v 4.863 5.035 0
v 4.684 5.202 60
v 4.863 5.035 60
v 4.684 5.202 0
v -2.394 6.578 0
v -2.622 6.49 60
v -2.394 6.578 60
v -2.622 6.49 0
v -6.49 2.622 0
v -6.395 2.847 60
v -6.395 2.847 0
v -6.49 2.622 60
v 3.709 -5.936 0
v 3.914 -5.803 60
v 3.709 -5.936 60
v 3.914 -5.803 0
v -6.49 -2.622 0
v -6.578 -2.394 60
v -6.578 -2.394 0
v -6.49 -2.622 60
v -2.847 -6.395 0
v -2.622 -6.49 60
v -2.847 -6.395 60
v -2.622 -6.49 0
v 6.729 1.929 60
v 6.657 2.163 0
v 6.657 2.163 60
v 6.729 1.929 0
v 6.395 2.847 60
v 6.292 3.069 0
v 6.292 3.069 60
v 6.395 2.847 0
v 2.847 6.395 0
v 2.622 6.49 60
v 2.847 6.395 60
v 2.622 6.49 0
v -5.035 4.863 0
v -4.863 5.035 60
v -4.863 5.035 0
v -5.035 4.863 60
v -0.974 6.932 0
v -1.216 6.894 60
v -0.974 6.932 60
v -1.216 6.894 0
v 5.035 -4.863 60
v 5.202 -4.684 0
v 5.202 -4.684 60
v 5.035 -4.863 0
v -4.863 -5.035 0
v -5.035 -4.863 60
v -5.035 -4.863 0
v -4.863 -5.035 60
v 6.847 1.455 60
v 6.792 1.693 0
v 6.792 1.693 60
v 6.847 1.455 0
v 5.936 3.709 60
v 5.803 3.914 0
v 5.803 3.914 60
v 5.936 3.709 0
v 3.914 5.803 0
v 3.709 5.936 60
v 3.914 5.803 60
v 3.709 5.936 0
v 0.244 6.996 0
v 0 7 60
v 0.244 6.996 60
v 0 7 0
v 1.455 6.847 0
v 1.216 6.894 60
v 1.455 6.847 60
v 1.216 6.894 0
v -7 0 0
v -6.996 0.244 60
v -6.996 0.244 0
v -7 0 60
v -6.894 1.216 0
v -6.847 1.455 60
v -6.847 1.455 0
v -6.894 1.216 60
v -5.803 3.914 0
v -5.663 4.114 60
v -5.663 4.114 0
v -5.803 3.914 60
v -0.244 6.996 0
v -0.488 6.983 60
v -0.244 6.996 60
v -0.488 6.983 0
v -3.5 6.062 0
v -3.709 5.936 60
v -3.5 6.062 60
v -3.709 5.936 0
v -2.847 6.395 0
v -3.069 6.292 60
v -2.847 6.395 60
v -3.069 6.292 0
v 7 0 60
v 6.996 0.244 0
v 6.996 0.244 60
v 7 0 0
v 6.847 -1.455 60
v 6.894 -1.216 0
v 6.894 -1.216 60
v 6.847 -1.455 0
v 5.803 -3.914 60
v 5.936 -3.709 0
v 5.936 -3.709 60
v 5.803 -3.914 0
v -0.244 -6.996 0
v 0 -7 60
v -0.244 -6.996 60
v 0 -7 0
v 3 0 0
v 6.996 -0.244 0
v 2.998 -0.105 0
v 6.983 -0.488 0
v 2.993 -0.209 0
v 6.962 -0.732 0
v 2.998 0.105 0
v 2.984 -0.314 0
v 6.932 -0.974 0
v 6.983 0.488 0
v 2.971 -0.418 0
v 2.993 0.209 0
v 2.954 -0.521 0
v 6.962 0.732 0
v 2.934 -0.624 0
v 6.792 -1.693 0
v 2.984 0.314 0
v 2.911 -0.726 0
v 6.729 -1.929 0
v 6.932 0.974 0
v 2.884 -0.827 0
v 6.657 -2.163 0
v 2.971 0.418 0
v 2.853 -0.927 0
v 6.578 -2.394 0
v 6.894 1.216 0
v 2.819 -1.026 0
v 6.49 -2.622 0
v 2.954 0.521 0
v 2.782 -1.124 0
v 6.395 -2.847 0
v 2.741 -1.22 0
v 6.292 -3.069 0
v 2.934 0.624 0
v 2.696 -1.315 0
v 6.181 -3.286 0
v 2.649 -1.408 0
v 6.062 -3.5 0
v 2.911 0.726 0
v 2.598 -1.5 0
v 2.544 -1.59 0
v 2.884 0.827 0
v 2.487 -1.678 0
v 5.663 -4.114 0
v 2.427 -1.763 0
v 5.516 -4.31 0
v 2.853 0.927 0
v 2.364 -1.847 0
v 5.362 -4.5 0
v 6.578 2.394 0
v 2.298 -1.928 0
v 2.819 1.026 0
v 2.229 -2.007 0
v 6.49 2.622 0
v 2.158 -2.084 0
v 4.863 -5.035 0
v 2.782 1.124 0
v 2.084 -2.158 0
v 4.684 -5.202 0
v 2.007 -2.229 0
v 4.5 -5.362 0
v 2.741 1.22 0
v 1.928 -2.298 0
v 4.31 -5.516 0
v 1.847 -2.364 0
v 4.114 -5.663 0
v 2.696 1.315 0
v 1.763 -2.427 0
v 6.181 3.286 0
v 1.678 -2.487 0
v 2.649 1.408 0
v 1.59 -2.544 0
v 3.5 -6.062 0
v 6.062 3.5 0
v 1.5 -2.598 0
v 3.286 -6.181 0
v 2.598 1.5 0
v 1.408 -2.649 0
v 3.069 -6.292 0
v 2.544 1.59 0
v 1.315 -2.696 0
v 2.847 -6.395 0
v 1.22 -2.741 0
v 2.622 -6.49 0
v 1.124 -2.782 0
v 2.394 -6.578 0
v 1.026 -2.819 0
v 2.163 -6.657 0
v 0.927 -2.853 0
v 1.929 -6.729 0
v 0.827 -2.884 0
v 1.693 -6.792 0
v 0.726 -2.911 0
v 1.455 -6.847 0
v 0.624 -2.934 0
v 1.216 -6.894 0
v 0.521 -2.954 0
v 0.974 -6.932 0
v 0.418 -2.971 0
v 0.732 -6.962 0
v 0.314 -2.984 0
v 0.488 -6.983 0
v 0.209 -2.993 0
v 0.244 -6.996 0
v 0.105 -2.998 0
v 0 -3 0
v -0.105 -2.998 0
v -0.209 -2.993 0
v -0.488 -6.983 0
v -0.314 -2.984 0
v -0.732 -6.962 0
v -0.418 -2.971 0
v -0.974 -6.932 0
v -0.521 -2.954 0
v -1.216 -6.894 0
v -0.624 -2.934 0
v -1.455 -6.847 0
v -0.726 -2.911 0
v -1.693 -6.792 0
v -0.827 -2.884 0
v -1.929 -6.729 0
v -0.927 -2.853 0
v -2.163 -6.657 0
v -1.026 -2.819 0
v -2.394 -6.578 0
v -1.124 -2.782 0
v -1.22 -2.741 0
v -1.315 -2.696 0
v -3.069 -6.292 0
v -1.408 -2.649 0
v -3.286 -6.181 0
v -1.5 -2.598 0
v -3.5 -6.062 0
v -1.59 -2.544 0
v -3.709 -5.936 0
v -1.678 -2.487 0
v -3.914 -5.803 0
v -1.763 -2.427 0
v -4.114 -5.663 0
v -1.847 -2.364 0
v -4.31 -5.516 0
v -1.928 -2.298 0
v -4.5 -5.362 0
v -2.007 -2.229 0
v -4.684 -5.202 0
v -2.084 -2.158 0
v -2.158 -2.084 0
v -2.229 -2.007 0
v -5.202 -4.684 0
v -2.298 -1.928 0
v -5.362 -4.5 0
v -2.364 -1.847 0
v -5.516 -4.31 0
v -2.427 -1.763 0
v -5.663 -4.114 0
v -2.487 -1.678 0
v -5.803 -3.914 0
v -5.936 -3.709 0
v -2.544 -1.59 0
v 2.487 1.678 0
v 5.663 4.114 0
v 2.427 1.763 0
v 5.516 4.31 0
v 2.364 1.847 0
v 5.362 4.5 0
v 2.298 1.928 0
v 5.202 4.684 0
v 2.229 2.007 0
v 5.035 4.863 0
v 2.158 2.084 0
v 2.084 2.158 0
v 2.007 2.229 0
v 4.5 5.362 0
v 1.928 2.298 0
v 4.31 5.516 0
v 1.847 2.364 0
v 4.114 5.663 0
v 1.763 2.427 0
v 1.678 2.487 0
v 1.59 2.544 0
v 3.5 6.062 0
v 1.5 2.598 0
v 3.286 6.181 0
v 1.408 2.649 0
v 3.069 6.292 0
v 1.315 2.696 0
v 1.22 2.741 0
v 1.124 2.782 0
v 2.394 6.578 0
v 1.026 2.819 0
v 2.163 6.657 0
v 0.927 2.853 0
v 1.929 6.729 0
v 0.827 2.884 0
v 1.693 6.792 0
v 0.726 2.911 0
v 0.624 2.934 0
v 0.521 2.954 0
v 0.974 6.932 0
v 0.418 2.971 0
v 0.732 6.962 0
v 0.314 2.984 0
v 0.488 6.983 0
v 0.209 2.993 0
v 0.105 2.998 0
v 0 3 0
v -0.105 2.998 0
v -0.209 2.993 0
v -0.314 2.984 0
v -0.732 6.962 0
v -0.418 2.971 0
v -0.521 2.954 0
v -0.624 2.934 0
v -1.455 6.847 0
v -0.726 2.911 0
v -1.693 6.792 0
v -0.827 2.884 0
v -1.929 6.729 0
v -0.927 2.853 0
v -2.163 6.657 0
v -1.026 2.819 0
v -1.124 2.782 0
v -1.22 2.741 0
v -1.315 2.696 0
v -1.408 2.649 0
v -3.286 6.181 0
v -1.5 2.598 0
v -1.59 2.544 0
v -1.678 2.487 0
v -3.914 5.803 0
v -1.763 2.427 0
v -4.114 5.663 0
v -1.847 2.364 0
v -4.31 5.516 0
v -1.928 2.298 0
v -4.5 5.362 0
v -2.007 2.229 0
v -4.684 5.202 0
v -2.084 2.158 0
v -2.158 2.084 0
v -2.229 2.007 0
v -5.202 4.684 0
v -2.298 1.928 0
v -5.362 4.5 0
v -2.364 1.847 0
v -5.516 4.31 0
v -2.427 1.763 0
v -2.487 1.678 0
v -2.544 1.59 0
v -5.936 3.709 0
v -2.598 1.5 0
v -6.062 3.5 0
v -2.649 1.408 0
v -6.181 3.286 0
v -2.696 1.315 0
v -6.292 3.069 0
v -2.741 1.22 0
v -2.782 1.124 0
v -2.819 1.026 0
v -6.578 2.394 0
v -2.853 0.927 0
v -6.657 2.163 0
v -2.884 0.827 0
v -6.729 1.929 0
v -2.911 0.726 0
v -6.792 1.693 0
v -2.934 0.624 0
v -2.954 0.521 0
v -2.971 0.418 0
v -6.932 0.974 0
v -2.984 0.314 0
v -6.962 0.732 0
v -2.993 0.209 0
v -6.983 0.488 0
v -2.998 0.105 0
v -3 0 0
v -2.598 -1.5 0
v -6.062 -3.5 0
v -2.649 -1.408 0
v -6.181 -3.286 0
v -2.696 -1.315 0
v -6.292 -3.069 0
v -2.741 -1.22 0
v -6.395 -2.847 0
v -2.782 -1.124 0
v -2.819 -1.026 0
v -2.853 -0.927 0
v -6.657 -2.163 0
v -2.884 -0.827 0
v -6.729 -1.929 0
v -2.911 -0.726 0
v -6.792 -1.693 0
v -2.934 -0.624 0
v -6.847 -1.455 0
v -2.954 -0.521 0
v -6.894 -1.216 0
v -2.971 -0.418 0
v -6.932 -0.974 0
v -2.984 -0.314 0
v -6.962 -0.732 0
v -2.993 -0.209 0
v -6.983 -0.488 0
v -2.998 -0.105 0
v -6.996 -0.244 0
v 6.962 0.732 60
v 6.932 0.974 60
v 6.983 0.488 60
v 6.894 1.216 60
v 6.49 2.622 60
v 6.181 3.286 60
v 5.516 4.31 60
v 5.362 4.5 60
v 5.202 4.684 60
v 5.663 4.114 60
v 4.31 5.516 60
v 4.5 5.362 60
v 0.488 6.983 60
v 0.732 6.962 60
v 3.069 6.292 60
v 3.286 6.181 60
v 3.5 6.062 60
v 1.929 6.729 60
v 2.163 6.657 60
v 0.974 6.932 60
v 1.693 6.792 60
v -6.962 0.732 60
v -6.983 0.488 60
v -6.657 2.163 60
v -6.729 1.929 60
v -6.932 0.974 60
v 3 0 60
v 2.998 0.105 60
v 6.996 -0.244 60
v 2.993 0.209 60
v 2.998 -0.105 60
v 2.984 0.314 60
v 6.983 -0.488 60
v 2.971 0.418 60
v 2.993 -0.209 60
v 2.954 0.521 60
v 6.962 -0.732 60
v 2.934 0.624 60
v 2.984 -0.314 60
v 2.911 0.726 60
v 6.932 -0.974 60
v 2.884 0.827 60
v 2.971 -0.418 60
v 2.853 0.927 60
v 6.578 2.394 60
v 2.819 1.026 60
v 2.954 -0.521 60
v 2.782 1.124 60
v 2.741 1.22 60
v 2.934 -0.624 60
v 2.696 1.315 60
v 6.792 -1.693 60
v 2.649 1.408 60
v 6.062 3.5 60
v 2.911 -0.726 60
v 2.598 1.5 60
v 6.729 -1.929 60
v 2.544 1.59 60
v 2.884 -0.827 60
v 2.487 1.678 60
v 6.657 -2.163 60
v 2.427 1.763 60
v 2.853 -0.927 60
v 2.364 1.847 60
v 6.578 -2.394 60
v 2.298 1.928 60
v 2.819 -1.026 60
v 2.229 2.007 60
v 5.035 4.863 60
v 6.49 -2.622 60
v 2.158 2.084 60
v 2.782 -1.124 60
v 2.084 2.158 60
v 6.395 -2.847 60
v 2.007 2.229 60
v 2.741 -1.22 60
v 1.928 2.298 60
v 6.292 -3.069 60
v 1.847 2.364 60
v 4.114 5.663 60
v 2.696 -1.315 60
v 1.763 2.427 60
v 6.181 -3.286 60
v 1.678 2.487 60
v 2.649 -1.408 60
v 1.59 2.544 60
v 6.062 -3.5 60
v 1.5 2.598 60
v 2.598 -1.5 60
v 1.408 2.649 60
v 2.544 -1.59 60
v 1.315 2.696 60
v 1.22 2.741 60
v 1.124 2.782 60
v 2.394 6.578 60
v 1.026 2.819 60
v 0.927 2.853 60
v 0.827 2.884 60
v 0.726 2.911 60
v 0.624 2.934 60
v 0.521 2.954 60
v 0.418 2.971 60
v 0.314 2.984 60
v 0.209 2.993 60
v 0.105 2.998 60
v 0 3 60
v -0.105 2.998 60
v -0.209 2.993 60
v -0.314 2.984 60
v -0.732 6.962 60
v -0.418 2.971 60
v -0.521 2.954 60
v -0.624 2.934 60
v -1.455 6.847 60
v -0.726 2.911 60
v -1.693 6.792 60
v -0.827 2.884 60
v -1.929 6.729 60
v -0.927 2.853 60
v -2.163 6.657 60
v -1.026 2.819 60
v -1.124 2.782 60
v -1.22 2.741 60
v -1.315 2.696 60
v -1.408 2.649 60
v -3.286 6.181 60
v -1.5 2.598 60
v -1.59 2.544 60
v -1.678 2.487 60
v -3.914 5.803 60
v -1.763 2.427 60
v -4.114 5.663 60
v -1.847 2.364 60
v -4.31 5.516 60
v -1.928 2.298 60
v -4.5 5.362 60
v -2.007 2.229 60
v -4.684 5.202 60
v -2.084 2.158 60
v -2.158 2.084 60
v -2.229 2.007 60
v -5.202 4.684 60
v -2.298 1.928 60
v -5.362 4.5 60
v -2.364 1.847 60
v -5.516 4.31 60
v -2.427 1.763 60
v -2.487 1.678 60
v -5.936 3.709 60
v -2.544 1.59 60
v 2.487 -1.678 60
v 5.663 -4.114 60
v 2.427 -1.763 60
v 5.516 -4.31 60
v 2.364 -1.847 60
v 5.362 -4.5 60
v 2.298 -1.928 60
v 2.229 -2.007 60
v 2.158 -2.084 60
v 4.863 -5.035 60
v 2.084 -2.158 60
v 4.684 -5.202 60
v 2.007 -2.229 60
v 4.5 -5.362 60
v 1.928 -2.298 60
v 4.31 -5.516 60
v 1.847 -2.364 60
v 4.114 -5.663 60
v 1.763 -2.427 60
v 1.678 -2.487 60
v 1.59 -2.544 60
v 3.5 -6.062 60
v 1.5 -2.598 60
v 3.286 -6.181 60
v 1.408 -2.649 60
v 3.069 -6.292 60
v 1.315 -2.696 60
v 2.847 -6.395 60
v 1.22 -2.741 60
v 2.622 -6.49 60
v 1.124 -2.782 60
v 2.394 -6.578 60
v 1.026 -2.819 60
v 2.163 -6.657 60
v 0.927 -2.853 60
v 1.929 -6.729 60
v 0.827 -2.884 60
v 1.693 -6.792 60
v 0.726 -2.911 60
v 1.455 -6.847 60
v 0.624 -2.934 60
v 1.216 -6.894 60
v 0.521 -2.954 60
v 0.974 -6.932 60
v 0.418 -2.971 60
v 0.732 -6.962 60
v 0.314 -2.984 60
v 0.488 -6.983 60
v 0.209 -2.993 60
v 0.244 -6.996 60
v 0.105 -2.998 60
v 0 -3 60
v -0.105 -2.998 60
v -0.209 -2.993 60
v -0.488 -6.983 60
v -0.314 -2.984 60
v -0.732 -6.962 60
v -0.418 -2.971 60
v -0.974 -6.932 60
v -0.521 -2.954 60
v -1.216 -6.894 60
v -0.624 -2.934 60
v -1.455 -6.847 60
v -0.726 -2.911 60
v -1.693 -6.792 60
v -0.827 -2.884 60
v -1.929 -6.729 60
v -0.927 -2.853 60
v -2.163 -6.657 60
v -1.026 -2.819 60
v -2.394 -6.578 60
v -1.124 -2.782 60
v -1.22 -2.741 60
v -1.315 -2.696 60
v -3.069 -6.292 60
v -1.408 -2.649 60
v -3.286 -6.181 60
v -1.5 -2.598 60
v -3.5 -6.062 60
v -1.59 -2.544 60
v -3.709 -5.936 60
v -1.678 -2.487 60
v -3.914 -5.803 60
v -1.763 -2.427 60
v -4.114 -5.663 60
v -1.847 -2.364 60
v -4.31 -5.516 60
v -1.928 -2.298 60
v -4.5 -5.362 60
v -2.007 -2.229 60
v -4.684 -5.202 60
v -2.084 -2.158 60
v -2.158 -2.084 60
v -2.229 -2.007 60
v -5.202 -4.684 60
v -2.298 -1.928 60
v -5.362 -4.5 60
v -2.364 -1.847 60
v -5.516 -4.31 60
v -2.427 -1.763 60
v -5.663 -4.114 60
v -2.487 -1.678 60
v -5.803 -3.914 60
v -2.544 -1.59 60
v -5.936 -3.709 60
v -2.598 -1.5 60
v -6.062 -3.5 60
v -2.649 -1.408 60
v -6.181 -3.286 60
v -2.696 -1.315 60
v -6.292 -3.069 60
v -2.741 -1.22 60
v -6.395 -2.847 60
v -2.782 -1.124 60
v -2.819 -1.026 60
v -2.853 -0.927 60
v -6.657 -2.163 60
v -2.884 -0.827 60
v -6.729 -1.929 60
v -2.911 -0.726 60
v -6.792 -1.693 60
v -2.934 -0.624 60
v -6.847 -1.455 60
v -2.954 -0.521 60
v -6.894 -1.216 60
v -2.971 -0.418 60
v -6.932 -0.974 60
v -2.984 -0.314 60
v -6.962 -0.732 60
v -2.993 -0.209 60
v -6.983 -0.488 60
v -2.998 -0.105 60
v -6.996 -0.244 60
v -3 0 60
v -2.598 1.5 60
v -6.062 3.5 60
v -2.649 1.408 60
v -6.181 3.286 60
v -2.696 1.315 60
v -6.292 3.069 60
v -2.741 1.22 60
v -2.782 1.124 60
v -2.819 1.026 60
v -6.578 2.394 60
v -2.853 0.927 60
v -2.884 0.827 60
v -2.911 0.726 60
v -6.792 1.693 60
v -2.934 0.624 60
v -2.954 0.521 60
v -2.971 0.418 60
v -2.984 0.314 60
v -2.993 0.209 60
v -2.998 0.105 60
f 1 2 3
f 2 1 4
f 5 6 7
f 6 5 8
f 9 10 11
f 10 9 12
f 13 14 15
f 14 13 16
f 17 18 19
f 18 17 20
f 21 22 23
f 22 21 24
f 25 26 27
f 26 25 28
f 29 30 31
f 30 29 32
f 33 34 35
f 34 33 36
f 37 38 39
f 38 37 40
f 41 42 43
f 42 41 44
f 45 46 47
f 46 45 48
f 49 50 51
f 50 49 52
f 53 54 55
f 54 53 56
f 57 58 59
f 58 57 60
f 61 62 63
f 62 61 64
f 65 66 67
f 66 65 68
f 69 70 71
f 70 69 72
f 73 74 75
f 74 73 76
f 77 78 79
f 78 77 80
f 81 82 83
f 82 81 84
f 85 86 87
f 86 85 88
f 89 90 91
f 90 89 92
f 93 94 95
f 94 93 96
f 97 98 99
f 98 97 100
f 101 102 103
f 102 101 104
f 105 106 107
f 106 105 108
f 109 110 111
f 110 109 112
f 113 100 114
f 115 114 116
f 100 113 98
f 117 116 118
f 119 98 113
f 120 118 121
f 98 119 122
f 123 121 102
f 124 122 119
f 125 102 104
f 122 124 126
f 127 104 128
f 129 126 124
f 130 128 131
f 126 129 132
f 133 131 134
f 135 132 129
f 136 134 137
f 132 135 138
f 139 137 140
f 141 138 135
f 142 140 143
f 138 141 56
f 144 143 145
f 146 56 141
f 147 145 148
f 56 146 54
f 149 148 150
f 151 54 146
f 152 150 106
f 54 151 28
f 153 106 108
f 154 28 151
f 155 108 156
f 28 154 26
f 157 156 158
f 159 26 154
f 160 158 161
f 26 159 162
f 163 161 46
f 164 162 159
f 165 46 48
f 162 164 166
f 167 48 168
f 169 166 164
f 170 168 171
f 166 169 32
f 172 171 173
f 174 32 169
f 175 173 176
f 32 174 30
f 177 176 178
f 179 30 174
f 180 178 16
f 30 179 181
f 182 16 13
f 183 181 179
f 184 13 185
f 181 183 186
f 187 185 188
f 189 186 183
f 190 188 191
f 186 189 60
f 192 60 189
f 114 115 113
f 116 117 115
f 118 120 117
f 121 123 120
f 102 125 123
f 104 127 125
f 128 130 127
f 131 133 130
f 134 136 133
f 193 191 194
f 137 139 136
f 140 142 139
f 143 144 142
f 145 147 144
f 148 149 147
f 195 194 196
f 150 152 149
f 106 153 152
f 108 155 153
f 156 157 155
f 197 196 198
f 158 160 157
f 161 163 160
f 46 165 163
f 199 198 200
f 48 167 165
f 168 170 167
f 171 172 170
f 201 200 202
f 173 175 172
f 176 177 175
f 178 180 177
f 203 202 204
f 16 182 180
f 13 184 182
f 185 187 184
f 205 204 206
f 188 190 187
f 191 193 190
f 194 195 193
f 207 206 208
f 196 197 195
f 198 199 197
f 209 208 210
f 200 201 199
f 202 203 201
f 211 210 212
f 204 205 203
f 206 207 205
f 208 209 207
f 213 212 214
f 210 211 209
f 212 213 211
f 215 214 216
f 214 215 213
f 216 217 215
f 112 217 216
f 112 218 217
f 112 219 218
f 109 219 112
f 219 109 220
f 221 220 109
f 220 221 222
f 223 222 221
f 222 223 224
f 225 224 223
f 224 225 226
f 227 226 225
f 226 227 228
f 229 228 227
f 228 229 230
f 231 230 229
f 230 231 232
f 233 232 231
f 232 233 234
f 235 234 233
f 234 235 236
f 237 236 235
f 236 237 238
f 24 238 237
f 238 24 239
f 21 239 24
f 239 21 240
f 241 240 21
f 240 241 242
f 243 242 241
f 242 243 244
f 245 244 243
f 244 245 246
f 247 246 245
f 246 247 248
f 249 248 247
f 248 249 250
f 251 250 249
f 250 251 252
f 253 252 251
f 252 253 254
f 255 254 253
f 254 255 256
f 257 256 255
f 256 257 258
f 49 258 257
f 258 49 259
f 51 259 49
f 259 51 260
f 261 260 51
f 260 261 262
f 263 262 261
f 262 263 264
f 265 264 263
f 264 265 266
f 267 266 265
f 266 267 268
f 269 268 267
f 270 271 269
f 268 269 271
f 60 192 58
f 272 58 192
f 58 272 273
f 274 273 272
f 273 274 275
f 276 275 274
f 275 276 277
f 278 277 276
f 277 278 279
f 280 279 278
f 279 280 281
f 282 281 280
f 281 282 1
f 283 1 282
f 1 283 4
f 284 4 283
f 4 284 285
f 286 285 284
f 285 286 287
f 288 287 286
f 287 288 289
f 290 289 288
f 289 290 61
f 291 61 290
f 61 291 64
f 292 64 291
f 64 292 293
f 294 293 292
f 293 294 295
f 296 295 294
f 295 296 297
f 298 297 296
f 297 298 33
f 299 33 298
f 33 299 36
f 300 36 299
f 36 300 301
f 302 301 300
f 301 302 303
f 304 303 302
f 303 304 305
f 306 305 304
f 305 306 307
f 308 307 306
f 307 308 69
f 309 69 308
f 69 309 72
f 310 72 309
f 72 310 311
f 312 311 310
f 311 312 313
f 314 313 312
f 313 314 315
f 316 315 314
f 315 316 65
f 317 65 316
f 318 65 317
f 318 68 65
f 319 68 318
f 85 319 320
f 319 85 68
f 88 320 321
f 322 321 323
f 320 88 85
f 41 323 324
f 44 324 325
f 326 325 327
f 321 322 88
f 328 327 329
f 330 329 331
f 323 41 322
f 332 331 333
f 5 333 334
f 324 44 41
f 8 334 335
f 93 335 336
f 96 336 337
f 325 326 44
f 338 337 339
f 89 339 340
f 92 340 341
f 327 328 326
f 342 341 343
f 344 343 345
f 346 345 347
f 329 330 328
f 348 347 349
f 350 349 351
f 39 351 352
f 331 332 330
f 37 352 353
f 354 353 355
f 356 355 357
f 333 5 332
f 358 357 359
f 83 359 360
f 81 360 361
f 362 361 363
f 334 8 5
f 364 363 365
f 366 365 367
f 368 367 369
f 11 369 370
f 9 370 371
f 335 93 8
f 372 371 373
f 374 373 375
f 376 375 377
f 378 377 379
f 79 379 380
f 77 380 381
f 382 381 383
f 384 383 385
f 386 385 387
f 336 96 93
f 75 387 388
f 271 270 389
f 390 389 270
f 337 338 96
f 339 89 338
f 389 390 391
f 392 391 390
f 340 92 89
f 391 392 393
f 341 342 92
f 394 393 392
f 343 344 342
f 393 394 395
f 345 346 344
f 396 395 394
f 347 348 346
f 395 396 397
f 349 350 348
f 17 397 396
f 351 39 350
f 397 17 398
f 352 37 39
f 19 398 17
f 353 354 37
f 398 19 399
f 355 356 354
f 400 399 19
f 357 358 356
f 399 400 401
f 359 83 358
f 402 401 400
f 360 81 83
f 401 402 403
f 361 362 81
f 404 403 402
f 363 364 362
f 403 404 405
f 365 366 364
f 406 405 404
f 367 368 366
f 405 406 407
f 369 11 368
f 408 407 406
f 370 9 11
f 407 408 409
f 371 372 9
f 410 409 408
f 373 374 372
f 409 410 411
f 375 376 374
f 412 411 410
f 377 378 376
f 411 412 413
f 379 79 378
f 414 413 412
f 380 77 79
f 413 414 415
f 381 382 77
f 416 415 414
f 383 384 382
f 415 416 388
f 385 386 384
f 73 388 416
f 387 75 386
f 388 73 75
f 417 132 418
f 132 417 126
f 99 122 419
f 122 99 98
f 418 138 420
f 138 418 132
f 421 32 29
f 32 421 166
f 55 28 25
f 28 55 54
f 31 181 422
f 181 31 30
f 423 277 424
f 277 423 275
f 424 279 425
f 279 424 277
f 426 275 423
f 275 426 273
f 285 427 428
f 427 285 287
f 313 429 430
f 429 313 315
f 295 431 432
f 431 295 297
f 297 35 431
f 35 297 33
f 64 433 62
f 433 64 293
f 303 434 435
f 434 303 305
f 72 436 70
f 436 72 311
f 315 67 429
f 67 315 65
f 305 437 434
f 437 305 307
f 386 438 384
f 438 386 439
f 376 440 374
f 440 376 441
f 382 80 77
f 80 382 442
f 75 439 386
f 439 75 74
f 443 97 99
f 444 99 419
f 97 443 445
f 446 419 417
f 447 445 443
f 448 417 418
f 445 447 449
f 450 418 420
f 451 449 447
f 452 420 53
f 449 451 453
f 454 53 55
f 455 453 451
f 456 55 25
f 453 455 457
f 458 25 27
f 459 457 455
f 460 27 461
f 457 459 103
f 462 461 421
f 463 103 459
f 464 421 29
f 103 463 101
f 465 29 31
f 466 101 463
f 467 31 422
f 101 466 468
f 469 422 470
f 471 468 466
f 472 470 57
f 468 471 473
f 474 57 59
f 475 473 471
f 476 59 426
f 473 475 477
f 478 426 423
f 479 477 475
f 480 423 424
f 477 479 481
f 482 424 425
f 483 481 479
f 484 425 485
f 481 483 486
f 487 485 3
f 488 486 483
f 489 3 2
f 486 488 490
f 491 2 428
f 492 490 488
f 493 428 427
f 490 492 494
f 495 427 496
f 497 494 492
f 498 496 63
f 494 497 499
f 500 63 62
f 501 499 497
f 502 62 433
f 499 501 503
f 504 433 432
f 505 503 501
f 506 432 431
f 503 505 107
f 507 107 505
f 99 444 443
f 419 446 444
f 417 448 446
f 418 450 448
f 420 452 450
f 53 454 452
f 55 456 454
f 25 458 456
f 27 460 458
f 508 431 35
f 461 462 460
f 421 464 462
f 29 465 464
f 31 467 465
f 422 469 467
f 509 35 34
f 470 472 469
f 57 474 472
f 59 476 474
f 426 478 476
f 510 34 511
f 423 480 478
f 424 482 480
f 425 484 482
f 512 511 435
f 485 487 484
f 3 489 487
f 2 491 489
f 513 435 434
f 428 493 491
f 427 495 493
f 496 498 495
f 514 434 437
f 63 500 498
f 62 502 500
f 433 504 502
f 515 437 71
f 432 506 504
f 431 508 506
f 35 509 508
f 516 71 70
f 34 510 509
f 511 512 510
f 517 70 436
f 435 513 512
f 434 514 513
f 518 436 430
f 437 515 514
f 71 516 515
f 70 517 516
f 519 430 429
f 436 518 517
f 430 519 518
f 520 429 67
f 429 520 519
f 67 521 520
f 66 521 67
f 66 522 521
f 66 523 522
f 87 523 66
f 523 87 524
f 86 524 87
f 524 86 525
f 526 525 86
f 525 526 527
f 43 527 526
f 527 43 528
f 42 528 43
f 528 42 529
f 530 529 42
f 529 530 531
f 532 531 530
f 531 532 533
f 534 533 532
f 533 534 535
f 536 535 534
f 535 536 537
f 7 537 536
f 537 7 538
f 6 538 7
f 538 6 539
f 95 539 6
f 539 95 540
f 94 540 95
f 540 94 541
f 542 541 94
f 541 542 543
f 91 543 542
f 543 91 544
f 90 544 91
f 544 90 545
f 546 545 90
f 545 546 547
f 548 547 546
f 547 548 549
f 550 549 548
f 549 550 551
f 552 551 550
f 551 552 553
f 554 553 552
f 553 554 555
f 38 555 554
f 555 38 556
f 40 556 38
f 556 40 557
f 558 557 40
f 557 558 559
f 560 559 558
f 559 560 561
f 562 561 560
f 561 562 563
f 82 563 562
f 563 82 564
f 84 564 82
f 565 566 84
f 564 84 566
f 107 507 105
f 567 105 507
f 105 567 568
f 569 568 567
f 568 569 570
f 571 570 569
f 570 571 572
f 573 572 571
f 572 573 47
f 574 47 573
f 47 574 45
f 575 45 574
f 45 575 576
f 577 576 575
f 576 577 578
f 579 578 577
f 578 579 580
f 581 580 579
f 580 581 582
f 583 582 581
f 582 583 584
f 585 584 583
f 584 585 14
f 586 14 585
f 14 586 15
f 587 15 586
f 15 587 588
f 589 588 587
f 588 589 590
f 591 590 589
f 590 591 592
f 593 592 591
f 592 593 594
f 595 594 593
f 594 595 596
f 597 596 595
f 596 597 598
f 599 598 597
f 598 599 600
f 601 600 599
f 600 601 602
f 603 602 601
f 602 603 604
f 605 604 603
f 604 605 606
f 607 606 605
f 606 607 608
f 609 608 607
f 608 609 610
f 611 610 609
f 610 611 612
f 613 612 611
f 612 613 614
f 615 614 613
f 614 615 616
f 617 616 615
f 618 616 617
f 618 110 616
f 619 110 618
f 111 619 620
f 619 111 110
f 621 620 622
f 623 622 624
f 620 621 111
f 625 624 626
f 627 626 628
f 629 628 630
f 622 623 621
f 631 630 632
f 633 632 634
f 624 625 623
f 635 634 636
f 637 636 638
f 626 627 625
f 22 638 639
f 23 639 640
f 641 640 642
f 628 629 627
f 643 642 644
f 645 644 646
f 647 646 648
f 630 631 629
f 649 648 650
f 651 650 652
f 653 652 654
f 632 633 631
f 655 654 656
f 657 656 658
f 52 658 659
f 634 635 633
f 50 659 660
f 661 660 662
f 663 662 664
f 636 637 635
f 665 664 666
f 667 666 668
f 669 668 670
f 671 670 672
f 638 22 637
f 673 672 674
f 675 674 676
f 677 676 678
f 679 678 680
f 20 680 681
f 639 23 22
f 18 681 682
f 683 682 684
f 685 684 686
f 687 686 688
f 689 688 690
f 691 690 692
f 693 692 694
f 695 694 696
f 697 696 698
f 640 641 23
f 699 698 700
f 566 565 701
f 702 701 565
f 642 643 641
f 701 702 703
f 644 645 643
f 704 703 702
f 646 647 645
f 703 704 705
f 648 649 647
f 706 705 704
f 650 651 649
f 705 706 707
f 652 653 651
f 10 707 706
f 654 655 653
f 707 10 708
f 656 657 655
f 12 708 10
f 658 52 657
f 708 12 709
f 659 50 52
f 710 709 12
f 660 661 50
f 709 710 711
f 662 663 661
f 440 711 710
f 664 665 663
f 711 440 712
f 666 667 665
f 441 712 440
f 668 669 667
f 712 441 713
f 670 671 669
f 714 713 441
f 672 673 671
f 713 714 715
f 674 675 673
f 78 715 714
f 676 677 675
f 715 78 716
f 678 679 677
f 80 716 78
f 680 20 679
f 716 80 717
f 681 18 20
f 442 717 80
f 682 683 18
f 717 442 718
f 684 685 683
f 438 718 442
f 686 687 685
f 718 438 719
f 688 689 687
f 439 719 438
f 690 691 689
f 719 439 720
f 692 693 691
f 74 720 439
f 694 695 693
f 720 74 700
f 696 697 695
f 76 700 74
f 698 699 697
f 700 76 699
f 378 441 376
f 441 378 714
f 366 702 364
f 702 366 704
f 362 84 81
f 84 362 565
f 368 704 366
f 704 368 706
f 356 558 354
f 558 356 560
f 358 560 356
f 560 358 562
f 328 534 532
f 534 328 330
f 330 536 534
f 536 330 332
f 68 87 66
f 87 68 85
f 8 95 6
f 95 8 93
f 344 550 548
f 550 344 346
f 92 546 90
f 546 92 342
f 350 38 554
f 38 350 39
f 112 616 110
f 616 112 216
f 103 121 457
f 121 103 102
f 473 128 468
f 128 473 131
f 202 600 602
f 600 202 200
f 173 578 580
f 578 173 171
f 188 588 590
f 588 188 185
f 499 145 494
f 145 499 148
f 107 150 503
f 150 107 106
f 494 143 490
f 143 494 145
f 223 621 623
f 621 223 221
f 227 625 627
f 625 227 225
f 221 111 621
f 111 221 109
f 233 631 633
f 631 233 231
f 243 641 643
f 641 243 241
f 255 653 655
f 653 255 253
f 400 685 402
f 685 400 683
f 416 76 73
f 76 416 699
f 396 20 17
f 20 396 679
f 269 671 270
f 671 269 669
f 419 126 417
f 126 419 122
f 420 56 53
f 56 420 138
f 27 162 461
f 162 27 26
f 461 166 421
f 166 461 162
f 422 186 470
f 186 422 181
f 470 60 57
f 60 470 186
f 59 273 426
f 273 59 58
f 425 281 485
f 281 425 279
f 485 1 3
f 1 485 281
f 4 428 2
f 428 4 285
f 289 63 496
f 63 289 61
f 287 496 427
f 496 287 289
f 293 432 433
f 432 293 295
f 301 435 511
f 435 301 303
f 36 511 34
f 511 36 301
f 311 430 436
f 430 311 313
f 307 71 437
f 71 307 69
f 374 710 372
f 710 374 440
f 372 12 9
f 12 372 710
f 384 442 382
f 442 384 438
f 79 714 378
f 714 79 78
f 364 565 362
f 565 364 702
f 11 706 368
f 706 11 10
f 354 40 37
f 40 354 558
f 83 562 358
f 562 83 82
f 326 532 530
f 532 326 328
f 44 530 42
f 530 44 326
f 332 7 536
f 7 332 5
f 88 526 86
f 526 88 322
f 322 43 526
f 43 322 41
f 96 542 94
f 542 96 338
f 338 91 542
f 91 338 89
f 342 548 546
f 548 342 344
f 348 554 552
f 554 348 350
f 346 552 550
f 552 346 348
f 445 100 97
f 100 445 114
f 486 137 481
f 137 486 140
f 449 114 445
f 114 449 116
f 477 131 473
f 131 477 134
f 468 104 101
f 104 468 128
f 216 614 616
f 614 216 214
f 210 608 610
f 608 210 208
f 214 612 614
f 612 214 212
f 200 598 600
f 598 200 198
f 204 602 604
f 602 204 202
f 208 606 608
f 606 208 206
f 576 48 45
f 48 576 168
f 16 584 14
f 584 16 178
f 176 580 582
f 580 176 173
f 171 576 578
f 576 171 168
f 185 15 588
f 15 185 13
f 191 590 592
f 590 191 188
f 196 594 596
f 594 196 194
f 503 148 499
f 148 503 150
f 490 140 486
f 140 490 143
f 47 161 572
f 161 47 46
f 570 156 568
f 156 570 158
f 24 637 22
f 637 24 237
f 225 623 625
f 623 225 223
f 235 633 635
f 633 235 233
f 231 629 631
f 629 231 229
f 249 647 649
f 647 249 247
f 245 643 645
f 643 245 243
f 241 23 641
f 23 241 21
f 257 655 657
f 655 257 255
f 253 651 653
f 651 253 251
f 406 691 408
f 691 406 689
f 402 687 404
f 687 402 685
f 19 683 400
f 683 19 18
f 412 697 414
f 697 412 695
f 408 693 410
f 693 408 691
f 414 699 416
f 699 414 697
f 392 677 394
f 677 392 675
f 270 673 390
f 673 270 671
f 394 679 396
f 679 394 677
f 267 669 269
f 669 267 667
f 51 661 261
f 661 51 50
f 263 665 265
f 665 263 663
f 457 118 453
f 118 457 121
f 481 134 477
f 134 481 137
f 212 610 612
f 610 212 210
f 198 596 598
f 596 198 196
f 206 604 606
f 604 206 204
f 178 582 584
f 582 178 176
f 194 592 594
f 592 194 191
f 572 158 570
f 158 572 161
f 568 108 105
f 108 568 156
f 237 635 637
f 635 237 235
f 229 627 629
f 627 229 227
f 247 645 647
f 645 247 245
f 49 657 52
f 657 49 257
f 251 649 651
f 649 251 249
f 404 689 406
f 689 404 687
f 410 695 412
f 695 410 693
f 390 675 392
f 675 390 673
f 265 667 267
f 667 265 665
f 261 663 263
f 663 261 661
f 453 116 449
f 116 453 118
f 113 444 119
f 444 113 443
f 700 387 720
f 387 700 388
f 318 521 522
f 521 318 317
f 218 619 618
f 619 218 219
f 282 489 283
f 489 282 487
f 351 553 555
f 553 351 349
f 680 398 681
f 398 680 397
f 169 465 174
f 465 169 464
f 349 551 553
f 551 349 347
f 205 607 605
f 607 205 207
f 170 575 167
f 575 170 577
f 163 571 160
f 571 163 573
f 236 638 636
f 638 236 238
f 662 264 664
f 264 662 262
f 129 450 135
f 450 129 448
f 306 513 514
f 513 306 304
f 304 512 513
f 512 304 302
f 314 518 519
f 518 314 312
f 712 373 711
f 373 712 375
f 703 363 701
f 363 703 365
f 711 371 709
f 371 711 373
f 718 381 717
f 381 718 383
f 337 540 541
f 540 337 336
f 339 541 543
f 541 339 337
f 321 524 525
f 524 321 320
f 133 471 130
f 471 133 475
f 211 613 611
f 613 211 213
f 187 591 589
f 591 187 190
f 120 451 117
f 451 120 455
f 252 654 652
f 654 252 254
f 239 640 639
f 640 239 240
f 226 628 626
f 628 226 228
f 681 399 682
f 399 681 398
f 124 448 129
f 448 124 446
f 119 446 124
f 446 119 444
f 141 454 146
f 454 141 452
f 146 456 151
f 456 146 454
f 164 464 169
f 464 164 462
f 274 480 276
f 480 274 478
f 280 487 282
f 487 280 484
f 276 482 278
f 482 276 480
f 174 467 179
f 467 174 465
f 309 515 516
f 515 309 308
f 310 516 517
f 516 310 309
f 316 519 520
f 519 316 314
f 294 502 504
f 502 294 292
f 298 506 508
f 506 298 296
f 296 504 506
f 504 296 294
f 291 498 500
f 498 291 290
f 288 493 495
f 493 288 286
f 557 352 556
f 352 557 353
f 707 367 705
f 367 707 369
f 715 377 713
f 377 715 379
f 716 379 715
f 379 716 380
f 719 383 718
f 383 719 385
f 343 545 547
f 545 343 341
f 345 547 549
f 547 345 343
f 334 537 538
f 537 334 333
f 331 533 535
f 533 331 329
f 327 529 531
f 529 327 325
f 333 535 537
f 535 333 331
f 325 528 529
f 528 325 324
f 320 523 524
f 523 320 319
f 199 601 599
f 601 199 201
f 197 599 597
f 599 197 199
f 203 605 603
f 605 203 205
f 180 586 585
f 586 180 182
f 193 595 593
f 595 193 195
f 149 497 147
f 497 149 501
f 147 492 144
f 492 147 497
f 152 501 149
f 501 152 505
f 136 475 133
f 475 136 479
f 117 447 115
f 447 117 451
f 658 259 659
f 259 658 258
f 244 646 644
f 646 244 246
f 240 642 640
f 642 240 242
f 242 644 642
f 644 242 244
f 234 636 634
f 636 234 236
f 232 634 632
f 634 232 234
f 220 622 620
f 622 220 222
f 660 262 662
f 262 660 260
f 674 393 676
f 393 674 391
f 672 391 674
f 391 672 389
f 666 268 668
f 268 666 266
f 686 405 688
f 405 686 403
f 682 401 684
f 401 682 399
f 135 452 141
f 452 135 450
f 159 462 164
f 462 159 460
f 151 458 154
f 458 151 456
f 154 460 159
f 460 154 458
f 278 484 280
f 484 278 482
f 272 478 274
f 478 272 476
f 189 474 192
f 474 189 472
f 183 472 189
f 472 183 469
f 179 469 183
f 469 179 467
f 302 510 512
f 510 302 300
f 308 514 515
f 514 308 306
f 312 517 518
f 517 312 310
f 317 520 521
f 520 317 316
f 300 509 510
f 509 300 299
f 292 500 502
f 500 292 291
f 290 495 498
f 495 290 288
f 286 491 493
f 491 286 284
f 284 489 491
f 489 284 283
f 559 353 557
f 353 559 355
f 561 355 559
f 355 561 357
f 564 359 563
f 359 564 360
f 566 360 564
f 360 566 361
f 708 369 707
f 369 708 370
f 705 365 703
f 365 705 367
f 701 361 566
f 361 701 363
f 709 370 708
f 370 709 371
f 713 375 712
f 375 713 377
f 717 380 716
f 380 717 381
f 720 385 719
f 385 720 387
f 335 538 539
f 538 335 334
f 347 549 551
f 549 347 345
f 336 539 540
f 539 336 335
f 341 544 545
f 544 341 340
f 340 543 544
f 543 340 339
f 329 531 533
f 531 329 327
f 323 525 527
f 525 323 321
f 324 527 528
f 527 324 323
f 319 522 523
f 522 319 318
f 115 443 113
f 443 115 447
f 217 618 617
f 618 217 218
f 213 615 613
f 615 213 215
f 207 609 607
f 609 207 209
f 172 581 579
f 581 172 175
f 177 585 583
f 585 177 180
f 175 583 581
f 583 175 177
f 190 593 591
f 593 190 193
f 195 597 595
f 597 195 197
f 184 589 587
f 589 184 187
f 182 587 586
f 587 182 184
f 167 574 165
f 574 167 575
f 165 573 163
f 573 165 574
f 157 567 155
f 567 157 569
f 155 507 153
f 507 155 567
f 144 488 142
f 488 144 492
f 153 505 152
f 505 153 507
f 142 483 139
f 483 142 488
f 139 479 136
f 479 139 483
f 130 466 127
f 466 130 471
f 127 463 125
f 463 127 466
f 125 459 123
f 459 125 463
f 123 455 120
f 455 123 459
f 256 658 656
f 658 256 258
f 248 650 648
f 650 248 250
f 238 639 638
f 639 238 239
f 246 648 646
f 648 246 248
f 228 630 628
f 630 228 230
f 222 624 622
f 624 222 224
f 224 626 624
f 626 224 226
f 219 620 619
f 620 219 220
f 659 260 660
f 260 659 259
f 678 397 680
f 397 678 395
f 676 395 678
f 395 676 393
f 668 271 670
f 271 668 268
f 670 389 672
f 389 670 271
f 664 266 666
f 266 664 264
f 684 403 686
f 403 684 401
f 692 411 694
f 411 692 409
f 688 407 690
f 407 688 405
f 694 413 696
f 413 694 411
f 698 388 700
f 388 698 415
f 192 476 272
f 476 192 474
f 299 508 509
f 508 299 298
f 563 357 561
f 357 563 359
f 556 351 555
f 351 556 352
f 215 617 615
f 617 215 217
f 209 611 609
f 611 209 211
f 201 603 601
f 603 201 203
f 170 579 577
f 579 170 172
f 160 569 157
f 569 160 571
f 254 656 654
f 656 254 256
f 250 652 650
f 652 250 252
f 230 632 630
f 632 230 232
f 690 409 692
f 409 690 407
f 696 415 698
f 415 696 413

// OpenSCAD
// Spacer for Lid to upside down lid.
// to allow for an up-side-down lid to be mounted on top for tool storage.

// 70mm M4 bolt.
// 65mm thread (excludes head/nut space).
// 60mm (2x2.5mm thickness for lids)
height = 60;

$fn=180;

difference() {
    cylinder(d=14, h=height);
    cylinder(d=6, h=height);
}
